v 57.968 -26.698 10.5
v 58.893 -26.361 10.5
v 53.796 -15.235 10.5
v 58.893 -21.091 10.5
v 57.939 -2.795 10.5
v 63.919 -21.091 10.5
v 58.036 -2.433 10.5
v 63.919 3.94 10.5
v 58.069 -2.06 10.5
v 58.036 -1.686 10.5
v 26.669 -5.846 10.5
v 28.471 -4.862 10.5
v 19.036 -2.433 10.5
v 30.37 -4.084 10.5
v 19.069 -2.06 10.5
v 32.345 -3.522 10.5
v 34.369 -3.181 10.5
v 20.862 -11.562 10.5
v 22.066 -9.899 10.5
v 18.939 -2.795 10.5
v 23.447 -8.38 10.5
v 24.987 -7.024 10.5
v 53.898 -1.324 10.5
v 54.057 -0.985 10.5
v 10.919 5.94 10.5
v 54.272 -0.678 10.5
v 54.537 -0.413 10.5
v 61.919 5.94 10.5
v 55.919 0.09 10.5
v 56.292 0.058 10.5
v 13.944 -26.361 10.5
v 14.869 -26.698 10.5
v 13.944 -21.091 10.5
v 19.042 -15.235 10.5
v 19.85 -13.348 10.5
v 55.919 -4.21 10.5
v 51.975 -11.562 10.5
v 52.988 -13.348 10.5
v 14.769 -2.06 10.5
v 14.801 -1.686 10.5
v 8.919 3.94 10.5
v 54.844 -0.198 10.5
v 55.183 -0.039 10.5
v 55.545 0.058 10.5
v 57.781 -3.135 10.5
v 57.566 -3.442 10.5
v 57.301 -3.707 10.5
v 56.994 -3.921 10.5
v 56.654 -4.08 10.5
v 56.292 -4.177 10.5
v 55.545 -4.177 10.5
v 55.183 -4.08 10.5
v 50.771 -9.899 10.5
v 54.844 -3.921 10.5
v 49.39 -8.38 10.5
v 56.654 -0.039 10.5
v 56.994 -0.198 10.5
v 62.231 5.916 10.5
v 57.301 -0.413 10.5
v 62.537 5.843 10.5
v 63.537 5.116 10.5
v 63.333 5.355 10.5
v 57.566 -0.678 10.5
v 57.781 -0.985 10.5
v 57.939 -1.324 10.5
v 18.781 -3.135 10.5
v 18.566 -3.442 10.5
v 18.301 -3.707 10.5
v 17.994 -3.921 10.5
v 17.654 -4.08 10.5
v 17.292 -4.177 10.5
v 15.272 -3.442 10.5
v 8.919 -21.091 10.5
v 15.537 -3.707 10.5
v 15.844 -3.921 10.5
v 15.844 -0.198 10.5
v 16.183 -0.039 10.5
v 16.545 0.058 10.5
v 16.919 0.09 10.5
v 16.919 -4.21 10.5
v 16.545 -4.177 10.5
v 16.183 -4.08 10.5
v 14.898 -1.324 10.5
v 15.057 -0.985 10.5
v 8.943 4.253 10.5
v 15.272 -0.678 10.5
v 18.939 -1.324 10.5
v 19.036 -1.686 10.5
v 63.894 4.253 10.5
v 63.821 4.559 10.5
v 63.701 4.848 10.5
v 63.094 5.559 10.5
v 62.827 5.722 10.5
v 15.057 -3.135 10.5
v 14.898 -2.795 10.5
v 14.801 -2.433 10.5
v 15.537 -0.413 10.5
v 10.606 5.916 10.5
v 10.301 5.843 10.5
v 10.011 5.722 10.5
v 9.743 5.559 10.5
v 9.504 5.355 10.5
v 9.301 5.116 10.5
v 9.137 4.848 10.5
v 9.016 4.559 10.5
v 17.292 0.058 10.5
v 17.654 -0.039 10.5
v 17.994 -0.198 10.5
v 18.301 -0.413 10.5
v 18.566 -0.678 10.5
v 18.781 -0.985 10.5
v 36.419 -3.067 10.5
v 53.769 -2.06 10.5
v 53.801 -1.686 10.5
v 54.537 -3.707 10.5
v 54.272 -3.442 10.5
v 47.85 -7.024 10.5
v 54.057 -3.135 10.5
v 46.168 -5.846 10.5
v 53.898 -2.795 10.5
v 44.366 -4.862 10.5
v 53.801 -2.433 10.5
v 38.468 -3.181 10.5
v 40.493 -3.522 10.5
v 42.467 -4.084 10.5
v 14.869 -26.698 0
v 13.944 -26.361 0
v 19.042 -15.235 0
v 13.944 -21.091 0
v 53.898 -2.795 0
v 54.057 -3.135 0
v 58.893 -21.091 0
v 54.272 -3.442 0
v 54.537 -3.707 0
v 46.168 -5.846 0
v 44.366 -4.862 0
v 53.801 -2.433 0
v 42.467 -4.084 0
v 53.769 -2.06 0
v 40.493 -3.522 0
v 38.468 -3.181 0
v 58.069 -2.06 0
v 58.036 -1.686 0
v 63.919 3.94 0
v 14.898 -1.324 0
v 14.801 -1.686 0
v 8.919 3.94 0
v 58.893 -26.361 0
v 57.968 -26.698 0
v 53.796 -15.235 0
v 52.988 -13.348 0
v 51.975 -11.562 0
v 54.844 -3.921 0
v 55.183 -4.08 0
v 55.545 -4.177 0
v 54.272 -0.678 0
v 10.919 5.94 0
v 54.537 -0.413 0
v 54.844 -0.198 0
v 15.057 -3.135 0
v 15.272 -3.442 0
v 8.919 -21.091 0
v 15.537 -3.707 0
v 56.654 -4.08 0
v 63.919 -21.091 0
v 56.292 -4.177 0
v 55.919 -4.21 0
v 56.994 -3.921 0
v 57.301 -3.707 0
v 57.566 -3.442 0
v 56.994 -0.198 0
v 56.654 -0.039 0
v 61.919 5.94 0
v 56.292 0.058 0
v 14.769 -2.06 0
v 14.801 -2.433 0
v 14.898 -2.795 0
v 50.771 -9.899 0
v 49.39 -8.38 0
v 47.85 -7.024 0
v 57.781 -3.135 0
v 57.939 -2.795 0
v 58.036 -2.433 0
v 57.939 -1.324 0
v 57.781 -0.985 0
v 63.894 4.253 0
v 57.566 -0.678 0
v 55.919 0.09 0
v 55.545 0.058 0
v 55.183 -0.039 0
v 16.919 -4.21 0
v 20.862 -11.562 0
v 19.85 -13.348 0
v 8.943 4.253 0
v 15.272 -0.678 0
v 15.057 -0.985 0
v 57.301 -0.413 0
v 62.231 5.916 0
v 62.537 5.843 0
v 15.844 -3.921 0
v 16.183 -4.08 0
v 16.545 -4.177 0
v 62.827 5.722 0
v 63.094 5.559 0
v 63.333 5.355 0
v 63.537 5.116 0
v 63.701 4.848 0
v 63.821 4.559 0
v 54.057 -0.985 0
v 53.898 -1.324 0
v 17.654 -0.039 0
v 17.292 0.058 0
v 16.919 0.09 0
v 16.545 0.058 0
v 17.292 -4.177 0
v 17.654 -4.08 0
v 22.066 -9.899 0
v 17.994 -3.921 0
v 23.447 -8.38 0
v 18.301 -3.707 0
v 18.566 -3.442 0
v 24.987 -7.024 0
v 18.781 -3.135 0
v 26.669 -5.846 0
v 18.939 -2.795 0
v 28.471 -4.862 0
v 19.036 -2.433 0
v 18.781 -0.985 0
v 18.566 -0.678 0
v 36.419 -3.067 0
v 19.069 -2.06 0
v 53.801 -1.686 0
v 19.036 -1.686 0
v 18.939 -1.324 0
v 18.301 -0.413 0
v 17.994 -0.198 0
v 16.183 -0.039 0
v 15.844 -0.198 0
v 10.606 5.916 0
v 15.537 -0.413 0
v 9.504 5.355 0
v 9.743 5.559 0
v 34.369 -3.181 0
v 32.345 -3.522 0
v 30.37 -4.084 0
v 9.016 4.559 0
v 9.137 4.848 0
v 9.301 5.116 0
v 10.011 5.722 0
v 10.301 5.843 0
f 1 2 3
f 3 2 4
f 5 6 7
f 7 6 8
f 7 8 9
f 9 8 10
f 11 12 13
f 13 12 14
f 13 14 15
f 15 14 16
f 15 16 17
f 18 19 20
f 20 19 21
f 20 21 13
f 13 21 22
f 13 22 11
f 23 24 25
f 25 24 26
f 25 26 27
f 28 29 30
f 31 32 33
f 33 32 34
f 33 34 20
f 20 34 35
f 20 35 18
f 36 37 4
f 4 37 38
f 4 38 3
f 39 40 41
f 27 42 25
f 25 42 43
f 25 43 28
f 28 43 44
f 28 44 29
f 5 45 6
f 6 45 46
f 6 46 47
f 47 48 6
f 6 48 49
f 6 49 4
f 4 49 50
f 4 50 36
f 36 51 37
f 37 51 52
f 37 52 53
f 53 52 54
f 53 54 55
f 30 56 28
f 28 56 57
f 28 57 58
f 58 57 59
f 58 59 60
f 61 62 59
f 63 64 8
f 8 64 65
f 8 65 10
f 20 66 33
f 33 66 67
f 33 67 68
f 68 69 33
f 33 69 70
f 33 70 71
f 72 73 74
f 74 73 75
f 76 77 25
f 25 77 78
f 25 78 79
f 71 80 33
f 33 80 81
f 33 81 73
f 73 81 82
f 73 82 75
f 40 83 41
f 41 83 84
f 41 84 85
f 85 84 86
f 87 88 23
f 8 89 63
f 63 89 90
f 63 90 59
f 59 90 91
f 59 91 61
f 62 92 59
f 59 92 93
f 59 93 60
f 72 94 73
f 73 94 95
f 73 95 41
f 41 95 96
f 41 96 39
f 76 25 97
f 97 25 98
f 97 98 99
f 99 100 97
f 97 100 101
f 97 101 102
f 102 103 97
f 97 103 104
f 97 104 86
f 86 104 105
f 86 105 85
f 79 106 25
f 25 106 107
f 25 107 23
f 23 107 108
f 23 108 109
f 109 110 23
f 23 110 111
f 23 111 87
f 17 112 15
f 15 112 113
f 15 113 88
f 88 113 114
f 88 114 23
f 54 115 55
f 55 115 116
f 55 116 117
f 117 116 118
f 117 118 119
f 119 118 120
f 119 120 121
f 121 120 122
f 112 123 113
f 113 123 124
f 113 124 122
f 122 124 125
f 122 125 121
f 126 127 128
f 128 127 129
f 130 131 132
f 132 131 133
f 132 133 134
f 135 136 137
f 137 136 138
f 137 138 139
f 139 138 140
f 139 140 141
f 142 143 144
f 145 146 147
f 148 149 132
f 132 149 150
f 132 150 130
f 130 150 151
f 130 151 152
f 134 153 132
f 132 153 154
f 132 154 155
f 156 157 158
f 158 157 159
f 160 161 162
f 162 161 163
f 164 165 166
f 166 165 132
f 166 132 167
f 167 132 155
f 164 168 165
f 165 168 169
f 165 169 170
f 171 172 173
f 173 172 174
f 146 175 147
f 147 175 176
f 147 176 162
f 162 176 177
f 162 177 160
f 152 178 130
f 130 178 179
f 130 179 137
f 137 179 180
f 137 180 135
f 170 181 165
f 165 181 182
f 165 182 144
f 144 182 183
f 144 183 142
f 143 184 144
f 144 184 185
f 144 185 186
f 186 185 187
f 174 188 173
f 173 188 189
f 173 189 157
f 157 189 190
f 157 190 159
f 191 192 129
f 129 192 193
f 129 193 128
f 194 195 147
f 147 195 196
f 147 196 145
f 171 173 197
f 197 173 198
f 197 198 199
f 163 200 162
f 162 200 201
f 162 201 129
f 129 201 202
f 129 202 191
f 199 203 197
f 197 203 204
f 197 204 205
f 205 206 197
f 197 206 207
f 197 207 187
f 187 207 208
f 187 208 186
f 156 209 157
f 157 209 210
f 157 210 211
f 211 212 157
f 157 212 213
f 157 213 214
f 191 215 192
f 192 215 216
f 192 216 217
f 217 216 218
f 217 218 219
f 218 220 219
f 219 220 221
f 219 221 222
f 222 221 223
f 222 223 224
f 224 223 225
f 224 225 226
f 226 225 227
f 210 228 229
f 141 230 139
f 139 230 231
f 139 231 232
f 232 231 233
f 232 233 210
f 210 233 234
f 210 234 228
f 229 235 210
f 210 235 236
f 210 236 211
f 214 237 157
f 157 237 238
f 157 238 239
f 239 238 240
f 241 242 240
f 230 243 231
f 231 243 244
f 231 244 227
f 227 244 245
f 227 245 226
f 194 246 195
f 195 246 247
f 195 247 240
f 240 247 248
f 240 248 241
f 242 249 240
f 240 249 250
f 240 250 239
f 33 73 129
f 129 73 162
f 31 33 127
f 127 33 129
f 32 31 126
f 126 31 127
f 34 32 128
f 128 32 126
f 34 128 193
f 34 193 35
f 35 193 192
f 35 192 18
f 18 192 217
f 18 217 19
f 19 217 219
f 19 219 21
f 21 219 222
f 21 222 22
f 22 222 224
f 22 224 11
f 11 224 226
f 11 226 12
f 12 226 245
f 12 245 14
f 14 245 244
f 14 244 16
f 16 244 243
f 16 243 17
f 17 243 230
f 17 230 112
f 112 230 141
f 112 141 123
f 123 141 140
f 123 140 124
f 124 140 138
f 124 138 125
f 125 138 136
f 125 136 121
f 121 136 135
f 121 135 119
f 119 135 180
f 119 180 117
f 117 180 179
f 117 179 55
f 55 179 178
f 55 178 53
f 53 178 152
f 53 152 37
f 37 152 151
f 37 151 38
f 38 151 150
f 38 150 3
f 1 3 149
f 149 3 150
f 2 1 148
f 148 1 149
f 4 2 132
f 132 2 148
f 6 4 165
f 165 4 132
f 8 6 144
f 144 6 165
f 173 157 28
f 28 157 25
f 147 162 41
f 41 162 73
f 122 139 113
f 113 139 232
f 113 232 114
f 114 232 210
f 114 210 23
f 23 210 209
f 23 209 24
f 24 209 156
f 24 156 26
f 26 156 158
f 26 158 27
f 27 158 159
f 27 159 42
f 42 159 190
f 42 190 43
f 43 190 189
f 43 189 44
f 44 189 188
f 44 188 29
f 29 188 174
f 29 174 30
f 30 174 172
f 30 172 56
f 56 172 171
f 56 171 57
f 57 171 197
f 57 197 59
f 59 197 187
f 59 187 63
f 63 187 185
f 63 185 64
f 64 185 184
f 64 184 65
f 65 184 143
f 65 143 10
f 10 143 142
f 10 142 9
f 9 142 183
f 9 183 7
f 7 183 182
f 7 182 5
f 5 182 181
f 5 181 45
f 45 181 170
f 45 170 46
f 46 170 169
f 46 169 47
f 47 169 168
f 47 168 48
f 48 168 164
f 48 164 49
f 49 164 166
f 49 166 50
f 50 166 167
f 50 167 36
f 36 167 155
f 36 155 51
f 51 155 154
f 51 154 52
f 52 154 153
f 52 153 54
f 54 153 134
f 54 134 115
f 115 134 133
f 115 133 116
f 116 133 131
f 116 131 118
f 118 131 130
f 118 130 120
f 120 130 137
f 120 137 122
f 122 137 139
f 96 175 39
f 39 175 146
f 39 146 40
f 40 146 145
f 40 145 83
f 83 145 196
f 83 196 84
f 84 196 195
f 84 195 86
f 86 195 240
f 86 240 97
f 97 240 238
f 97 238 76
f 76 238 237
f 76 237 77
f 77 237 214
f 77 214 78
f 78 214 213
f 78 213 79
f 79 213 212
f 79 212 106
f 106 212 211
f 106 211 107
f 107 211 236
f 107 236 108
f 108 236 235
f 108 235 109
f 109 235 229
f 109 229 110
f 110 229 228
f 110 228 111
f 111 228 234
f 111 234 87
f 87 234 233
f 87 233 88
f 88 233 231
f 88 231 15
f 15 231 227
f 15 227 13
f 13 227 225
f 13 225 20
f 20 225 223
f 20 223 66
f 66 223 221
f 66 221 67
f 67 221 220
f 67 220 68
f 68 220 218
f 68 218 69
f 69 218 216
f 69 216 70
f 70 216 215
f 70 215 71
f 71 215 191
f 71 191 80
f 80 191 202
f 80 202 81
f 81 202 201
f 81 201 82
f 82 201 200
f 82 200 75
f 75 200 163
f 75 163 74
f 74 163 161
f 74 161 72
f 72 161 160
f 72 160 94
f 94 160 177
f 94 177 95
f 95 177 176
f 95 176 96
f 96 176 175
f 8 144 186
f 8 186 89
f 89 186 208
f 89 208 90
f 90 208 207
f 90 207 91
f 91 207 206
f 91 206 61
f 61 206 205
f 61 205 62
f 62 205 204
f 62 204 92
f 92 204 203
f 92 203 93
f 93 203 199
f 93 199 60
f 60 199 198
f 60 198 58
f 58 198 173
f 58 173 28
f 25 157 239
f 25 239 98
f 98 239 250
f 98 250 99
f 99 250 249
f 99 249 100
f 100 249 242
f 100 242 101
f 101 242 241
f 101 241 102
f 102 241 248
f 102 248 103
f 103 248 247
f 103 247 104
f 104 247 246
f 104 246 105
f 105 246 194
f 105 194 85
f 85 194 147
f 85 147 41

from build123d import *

# Parameters (mm, degrees)
SKETCH1_R           = 2.15
BOSS_EXTRUDE1_DEPTH = 10.5
FILLET1_R           = 2


with BuildPart() as part:
    # Sketch1 → Boss-Extrude1 (new body)
    with BuildSketch(Plane.XY):
        with BuildLine():
            Line((13.944137731, -26.361003887), (14.869335388, -26.697748295))
            Line((14.869335388, -26.697748295), (19.041515783, -15.234776871))
            ThreePointArc((19.041515783, -15.234776871), (36.418598187, -3.067212779), (53.795680592, -15.234776871))
            Line((53.795680592, -15.234776871), (57.967860986, -26.697748295))
            Line((57.967860986, -26.697748295), (58.893058643, -26.361003887))
            Line((58.893058643, -26.361003887), (58.893058643, -21.090651307))
            Line((58.893058643, -21.090651307), (63.918598187, -21.090651307))
            Line((63.918598187, -21.090651307), (63.918598187, 5.940482376))
            Line((63.918598187, 5.940482376), (8.918598187, 5.940482376))
            Line((8.918598187, 5.940482376), (8.918598187, -21.090651307))
            Line((8.918598187, -21.090651307), (13.944137731, -21.090651307))
            Line((13.944137731, -21.090651307), (13.944137731, -26.361003887))
        make_face()
        with Locations((55.918598187, -2.059517624)):
            Circle(SKETCH1_R, mode=Mode.SUBTRACT)
        with Locations((16.918598187, -2.059517624)):
            Circle(SKETCH1_R, mode=Mode.SUBTRACT)
    extrude(amount=BOSS_EXTRUDE1_DEPTH)

    # Fillet1
    fillet1_edges = [part.edges().sort_by_distance(p)[0] for p in [
        (8.918598187, 5.940482376, 5.25),
        (63.918598187, 5.940482376, 5.25),
    ]]
    fillet(fillet1_edges, radius=FILLET1_R)


solid = part.part
